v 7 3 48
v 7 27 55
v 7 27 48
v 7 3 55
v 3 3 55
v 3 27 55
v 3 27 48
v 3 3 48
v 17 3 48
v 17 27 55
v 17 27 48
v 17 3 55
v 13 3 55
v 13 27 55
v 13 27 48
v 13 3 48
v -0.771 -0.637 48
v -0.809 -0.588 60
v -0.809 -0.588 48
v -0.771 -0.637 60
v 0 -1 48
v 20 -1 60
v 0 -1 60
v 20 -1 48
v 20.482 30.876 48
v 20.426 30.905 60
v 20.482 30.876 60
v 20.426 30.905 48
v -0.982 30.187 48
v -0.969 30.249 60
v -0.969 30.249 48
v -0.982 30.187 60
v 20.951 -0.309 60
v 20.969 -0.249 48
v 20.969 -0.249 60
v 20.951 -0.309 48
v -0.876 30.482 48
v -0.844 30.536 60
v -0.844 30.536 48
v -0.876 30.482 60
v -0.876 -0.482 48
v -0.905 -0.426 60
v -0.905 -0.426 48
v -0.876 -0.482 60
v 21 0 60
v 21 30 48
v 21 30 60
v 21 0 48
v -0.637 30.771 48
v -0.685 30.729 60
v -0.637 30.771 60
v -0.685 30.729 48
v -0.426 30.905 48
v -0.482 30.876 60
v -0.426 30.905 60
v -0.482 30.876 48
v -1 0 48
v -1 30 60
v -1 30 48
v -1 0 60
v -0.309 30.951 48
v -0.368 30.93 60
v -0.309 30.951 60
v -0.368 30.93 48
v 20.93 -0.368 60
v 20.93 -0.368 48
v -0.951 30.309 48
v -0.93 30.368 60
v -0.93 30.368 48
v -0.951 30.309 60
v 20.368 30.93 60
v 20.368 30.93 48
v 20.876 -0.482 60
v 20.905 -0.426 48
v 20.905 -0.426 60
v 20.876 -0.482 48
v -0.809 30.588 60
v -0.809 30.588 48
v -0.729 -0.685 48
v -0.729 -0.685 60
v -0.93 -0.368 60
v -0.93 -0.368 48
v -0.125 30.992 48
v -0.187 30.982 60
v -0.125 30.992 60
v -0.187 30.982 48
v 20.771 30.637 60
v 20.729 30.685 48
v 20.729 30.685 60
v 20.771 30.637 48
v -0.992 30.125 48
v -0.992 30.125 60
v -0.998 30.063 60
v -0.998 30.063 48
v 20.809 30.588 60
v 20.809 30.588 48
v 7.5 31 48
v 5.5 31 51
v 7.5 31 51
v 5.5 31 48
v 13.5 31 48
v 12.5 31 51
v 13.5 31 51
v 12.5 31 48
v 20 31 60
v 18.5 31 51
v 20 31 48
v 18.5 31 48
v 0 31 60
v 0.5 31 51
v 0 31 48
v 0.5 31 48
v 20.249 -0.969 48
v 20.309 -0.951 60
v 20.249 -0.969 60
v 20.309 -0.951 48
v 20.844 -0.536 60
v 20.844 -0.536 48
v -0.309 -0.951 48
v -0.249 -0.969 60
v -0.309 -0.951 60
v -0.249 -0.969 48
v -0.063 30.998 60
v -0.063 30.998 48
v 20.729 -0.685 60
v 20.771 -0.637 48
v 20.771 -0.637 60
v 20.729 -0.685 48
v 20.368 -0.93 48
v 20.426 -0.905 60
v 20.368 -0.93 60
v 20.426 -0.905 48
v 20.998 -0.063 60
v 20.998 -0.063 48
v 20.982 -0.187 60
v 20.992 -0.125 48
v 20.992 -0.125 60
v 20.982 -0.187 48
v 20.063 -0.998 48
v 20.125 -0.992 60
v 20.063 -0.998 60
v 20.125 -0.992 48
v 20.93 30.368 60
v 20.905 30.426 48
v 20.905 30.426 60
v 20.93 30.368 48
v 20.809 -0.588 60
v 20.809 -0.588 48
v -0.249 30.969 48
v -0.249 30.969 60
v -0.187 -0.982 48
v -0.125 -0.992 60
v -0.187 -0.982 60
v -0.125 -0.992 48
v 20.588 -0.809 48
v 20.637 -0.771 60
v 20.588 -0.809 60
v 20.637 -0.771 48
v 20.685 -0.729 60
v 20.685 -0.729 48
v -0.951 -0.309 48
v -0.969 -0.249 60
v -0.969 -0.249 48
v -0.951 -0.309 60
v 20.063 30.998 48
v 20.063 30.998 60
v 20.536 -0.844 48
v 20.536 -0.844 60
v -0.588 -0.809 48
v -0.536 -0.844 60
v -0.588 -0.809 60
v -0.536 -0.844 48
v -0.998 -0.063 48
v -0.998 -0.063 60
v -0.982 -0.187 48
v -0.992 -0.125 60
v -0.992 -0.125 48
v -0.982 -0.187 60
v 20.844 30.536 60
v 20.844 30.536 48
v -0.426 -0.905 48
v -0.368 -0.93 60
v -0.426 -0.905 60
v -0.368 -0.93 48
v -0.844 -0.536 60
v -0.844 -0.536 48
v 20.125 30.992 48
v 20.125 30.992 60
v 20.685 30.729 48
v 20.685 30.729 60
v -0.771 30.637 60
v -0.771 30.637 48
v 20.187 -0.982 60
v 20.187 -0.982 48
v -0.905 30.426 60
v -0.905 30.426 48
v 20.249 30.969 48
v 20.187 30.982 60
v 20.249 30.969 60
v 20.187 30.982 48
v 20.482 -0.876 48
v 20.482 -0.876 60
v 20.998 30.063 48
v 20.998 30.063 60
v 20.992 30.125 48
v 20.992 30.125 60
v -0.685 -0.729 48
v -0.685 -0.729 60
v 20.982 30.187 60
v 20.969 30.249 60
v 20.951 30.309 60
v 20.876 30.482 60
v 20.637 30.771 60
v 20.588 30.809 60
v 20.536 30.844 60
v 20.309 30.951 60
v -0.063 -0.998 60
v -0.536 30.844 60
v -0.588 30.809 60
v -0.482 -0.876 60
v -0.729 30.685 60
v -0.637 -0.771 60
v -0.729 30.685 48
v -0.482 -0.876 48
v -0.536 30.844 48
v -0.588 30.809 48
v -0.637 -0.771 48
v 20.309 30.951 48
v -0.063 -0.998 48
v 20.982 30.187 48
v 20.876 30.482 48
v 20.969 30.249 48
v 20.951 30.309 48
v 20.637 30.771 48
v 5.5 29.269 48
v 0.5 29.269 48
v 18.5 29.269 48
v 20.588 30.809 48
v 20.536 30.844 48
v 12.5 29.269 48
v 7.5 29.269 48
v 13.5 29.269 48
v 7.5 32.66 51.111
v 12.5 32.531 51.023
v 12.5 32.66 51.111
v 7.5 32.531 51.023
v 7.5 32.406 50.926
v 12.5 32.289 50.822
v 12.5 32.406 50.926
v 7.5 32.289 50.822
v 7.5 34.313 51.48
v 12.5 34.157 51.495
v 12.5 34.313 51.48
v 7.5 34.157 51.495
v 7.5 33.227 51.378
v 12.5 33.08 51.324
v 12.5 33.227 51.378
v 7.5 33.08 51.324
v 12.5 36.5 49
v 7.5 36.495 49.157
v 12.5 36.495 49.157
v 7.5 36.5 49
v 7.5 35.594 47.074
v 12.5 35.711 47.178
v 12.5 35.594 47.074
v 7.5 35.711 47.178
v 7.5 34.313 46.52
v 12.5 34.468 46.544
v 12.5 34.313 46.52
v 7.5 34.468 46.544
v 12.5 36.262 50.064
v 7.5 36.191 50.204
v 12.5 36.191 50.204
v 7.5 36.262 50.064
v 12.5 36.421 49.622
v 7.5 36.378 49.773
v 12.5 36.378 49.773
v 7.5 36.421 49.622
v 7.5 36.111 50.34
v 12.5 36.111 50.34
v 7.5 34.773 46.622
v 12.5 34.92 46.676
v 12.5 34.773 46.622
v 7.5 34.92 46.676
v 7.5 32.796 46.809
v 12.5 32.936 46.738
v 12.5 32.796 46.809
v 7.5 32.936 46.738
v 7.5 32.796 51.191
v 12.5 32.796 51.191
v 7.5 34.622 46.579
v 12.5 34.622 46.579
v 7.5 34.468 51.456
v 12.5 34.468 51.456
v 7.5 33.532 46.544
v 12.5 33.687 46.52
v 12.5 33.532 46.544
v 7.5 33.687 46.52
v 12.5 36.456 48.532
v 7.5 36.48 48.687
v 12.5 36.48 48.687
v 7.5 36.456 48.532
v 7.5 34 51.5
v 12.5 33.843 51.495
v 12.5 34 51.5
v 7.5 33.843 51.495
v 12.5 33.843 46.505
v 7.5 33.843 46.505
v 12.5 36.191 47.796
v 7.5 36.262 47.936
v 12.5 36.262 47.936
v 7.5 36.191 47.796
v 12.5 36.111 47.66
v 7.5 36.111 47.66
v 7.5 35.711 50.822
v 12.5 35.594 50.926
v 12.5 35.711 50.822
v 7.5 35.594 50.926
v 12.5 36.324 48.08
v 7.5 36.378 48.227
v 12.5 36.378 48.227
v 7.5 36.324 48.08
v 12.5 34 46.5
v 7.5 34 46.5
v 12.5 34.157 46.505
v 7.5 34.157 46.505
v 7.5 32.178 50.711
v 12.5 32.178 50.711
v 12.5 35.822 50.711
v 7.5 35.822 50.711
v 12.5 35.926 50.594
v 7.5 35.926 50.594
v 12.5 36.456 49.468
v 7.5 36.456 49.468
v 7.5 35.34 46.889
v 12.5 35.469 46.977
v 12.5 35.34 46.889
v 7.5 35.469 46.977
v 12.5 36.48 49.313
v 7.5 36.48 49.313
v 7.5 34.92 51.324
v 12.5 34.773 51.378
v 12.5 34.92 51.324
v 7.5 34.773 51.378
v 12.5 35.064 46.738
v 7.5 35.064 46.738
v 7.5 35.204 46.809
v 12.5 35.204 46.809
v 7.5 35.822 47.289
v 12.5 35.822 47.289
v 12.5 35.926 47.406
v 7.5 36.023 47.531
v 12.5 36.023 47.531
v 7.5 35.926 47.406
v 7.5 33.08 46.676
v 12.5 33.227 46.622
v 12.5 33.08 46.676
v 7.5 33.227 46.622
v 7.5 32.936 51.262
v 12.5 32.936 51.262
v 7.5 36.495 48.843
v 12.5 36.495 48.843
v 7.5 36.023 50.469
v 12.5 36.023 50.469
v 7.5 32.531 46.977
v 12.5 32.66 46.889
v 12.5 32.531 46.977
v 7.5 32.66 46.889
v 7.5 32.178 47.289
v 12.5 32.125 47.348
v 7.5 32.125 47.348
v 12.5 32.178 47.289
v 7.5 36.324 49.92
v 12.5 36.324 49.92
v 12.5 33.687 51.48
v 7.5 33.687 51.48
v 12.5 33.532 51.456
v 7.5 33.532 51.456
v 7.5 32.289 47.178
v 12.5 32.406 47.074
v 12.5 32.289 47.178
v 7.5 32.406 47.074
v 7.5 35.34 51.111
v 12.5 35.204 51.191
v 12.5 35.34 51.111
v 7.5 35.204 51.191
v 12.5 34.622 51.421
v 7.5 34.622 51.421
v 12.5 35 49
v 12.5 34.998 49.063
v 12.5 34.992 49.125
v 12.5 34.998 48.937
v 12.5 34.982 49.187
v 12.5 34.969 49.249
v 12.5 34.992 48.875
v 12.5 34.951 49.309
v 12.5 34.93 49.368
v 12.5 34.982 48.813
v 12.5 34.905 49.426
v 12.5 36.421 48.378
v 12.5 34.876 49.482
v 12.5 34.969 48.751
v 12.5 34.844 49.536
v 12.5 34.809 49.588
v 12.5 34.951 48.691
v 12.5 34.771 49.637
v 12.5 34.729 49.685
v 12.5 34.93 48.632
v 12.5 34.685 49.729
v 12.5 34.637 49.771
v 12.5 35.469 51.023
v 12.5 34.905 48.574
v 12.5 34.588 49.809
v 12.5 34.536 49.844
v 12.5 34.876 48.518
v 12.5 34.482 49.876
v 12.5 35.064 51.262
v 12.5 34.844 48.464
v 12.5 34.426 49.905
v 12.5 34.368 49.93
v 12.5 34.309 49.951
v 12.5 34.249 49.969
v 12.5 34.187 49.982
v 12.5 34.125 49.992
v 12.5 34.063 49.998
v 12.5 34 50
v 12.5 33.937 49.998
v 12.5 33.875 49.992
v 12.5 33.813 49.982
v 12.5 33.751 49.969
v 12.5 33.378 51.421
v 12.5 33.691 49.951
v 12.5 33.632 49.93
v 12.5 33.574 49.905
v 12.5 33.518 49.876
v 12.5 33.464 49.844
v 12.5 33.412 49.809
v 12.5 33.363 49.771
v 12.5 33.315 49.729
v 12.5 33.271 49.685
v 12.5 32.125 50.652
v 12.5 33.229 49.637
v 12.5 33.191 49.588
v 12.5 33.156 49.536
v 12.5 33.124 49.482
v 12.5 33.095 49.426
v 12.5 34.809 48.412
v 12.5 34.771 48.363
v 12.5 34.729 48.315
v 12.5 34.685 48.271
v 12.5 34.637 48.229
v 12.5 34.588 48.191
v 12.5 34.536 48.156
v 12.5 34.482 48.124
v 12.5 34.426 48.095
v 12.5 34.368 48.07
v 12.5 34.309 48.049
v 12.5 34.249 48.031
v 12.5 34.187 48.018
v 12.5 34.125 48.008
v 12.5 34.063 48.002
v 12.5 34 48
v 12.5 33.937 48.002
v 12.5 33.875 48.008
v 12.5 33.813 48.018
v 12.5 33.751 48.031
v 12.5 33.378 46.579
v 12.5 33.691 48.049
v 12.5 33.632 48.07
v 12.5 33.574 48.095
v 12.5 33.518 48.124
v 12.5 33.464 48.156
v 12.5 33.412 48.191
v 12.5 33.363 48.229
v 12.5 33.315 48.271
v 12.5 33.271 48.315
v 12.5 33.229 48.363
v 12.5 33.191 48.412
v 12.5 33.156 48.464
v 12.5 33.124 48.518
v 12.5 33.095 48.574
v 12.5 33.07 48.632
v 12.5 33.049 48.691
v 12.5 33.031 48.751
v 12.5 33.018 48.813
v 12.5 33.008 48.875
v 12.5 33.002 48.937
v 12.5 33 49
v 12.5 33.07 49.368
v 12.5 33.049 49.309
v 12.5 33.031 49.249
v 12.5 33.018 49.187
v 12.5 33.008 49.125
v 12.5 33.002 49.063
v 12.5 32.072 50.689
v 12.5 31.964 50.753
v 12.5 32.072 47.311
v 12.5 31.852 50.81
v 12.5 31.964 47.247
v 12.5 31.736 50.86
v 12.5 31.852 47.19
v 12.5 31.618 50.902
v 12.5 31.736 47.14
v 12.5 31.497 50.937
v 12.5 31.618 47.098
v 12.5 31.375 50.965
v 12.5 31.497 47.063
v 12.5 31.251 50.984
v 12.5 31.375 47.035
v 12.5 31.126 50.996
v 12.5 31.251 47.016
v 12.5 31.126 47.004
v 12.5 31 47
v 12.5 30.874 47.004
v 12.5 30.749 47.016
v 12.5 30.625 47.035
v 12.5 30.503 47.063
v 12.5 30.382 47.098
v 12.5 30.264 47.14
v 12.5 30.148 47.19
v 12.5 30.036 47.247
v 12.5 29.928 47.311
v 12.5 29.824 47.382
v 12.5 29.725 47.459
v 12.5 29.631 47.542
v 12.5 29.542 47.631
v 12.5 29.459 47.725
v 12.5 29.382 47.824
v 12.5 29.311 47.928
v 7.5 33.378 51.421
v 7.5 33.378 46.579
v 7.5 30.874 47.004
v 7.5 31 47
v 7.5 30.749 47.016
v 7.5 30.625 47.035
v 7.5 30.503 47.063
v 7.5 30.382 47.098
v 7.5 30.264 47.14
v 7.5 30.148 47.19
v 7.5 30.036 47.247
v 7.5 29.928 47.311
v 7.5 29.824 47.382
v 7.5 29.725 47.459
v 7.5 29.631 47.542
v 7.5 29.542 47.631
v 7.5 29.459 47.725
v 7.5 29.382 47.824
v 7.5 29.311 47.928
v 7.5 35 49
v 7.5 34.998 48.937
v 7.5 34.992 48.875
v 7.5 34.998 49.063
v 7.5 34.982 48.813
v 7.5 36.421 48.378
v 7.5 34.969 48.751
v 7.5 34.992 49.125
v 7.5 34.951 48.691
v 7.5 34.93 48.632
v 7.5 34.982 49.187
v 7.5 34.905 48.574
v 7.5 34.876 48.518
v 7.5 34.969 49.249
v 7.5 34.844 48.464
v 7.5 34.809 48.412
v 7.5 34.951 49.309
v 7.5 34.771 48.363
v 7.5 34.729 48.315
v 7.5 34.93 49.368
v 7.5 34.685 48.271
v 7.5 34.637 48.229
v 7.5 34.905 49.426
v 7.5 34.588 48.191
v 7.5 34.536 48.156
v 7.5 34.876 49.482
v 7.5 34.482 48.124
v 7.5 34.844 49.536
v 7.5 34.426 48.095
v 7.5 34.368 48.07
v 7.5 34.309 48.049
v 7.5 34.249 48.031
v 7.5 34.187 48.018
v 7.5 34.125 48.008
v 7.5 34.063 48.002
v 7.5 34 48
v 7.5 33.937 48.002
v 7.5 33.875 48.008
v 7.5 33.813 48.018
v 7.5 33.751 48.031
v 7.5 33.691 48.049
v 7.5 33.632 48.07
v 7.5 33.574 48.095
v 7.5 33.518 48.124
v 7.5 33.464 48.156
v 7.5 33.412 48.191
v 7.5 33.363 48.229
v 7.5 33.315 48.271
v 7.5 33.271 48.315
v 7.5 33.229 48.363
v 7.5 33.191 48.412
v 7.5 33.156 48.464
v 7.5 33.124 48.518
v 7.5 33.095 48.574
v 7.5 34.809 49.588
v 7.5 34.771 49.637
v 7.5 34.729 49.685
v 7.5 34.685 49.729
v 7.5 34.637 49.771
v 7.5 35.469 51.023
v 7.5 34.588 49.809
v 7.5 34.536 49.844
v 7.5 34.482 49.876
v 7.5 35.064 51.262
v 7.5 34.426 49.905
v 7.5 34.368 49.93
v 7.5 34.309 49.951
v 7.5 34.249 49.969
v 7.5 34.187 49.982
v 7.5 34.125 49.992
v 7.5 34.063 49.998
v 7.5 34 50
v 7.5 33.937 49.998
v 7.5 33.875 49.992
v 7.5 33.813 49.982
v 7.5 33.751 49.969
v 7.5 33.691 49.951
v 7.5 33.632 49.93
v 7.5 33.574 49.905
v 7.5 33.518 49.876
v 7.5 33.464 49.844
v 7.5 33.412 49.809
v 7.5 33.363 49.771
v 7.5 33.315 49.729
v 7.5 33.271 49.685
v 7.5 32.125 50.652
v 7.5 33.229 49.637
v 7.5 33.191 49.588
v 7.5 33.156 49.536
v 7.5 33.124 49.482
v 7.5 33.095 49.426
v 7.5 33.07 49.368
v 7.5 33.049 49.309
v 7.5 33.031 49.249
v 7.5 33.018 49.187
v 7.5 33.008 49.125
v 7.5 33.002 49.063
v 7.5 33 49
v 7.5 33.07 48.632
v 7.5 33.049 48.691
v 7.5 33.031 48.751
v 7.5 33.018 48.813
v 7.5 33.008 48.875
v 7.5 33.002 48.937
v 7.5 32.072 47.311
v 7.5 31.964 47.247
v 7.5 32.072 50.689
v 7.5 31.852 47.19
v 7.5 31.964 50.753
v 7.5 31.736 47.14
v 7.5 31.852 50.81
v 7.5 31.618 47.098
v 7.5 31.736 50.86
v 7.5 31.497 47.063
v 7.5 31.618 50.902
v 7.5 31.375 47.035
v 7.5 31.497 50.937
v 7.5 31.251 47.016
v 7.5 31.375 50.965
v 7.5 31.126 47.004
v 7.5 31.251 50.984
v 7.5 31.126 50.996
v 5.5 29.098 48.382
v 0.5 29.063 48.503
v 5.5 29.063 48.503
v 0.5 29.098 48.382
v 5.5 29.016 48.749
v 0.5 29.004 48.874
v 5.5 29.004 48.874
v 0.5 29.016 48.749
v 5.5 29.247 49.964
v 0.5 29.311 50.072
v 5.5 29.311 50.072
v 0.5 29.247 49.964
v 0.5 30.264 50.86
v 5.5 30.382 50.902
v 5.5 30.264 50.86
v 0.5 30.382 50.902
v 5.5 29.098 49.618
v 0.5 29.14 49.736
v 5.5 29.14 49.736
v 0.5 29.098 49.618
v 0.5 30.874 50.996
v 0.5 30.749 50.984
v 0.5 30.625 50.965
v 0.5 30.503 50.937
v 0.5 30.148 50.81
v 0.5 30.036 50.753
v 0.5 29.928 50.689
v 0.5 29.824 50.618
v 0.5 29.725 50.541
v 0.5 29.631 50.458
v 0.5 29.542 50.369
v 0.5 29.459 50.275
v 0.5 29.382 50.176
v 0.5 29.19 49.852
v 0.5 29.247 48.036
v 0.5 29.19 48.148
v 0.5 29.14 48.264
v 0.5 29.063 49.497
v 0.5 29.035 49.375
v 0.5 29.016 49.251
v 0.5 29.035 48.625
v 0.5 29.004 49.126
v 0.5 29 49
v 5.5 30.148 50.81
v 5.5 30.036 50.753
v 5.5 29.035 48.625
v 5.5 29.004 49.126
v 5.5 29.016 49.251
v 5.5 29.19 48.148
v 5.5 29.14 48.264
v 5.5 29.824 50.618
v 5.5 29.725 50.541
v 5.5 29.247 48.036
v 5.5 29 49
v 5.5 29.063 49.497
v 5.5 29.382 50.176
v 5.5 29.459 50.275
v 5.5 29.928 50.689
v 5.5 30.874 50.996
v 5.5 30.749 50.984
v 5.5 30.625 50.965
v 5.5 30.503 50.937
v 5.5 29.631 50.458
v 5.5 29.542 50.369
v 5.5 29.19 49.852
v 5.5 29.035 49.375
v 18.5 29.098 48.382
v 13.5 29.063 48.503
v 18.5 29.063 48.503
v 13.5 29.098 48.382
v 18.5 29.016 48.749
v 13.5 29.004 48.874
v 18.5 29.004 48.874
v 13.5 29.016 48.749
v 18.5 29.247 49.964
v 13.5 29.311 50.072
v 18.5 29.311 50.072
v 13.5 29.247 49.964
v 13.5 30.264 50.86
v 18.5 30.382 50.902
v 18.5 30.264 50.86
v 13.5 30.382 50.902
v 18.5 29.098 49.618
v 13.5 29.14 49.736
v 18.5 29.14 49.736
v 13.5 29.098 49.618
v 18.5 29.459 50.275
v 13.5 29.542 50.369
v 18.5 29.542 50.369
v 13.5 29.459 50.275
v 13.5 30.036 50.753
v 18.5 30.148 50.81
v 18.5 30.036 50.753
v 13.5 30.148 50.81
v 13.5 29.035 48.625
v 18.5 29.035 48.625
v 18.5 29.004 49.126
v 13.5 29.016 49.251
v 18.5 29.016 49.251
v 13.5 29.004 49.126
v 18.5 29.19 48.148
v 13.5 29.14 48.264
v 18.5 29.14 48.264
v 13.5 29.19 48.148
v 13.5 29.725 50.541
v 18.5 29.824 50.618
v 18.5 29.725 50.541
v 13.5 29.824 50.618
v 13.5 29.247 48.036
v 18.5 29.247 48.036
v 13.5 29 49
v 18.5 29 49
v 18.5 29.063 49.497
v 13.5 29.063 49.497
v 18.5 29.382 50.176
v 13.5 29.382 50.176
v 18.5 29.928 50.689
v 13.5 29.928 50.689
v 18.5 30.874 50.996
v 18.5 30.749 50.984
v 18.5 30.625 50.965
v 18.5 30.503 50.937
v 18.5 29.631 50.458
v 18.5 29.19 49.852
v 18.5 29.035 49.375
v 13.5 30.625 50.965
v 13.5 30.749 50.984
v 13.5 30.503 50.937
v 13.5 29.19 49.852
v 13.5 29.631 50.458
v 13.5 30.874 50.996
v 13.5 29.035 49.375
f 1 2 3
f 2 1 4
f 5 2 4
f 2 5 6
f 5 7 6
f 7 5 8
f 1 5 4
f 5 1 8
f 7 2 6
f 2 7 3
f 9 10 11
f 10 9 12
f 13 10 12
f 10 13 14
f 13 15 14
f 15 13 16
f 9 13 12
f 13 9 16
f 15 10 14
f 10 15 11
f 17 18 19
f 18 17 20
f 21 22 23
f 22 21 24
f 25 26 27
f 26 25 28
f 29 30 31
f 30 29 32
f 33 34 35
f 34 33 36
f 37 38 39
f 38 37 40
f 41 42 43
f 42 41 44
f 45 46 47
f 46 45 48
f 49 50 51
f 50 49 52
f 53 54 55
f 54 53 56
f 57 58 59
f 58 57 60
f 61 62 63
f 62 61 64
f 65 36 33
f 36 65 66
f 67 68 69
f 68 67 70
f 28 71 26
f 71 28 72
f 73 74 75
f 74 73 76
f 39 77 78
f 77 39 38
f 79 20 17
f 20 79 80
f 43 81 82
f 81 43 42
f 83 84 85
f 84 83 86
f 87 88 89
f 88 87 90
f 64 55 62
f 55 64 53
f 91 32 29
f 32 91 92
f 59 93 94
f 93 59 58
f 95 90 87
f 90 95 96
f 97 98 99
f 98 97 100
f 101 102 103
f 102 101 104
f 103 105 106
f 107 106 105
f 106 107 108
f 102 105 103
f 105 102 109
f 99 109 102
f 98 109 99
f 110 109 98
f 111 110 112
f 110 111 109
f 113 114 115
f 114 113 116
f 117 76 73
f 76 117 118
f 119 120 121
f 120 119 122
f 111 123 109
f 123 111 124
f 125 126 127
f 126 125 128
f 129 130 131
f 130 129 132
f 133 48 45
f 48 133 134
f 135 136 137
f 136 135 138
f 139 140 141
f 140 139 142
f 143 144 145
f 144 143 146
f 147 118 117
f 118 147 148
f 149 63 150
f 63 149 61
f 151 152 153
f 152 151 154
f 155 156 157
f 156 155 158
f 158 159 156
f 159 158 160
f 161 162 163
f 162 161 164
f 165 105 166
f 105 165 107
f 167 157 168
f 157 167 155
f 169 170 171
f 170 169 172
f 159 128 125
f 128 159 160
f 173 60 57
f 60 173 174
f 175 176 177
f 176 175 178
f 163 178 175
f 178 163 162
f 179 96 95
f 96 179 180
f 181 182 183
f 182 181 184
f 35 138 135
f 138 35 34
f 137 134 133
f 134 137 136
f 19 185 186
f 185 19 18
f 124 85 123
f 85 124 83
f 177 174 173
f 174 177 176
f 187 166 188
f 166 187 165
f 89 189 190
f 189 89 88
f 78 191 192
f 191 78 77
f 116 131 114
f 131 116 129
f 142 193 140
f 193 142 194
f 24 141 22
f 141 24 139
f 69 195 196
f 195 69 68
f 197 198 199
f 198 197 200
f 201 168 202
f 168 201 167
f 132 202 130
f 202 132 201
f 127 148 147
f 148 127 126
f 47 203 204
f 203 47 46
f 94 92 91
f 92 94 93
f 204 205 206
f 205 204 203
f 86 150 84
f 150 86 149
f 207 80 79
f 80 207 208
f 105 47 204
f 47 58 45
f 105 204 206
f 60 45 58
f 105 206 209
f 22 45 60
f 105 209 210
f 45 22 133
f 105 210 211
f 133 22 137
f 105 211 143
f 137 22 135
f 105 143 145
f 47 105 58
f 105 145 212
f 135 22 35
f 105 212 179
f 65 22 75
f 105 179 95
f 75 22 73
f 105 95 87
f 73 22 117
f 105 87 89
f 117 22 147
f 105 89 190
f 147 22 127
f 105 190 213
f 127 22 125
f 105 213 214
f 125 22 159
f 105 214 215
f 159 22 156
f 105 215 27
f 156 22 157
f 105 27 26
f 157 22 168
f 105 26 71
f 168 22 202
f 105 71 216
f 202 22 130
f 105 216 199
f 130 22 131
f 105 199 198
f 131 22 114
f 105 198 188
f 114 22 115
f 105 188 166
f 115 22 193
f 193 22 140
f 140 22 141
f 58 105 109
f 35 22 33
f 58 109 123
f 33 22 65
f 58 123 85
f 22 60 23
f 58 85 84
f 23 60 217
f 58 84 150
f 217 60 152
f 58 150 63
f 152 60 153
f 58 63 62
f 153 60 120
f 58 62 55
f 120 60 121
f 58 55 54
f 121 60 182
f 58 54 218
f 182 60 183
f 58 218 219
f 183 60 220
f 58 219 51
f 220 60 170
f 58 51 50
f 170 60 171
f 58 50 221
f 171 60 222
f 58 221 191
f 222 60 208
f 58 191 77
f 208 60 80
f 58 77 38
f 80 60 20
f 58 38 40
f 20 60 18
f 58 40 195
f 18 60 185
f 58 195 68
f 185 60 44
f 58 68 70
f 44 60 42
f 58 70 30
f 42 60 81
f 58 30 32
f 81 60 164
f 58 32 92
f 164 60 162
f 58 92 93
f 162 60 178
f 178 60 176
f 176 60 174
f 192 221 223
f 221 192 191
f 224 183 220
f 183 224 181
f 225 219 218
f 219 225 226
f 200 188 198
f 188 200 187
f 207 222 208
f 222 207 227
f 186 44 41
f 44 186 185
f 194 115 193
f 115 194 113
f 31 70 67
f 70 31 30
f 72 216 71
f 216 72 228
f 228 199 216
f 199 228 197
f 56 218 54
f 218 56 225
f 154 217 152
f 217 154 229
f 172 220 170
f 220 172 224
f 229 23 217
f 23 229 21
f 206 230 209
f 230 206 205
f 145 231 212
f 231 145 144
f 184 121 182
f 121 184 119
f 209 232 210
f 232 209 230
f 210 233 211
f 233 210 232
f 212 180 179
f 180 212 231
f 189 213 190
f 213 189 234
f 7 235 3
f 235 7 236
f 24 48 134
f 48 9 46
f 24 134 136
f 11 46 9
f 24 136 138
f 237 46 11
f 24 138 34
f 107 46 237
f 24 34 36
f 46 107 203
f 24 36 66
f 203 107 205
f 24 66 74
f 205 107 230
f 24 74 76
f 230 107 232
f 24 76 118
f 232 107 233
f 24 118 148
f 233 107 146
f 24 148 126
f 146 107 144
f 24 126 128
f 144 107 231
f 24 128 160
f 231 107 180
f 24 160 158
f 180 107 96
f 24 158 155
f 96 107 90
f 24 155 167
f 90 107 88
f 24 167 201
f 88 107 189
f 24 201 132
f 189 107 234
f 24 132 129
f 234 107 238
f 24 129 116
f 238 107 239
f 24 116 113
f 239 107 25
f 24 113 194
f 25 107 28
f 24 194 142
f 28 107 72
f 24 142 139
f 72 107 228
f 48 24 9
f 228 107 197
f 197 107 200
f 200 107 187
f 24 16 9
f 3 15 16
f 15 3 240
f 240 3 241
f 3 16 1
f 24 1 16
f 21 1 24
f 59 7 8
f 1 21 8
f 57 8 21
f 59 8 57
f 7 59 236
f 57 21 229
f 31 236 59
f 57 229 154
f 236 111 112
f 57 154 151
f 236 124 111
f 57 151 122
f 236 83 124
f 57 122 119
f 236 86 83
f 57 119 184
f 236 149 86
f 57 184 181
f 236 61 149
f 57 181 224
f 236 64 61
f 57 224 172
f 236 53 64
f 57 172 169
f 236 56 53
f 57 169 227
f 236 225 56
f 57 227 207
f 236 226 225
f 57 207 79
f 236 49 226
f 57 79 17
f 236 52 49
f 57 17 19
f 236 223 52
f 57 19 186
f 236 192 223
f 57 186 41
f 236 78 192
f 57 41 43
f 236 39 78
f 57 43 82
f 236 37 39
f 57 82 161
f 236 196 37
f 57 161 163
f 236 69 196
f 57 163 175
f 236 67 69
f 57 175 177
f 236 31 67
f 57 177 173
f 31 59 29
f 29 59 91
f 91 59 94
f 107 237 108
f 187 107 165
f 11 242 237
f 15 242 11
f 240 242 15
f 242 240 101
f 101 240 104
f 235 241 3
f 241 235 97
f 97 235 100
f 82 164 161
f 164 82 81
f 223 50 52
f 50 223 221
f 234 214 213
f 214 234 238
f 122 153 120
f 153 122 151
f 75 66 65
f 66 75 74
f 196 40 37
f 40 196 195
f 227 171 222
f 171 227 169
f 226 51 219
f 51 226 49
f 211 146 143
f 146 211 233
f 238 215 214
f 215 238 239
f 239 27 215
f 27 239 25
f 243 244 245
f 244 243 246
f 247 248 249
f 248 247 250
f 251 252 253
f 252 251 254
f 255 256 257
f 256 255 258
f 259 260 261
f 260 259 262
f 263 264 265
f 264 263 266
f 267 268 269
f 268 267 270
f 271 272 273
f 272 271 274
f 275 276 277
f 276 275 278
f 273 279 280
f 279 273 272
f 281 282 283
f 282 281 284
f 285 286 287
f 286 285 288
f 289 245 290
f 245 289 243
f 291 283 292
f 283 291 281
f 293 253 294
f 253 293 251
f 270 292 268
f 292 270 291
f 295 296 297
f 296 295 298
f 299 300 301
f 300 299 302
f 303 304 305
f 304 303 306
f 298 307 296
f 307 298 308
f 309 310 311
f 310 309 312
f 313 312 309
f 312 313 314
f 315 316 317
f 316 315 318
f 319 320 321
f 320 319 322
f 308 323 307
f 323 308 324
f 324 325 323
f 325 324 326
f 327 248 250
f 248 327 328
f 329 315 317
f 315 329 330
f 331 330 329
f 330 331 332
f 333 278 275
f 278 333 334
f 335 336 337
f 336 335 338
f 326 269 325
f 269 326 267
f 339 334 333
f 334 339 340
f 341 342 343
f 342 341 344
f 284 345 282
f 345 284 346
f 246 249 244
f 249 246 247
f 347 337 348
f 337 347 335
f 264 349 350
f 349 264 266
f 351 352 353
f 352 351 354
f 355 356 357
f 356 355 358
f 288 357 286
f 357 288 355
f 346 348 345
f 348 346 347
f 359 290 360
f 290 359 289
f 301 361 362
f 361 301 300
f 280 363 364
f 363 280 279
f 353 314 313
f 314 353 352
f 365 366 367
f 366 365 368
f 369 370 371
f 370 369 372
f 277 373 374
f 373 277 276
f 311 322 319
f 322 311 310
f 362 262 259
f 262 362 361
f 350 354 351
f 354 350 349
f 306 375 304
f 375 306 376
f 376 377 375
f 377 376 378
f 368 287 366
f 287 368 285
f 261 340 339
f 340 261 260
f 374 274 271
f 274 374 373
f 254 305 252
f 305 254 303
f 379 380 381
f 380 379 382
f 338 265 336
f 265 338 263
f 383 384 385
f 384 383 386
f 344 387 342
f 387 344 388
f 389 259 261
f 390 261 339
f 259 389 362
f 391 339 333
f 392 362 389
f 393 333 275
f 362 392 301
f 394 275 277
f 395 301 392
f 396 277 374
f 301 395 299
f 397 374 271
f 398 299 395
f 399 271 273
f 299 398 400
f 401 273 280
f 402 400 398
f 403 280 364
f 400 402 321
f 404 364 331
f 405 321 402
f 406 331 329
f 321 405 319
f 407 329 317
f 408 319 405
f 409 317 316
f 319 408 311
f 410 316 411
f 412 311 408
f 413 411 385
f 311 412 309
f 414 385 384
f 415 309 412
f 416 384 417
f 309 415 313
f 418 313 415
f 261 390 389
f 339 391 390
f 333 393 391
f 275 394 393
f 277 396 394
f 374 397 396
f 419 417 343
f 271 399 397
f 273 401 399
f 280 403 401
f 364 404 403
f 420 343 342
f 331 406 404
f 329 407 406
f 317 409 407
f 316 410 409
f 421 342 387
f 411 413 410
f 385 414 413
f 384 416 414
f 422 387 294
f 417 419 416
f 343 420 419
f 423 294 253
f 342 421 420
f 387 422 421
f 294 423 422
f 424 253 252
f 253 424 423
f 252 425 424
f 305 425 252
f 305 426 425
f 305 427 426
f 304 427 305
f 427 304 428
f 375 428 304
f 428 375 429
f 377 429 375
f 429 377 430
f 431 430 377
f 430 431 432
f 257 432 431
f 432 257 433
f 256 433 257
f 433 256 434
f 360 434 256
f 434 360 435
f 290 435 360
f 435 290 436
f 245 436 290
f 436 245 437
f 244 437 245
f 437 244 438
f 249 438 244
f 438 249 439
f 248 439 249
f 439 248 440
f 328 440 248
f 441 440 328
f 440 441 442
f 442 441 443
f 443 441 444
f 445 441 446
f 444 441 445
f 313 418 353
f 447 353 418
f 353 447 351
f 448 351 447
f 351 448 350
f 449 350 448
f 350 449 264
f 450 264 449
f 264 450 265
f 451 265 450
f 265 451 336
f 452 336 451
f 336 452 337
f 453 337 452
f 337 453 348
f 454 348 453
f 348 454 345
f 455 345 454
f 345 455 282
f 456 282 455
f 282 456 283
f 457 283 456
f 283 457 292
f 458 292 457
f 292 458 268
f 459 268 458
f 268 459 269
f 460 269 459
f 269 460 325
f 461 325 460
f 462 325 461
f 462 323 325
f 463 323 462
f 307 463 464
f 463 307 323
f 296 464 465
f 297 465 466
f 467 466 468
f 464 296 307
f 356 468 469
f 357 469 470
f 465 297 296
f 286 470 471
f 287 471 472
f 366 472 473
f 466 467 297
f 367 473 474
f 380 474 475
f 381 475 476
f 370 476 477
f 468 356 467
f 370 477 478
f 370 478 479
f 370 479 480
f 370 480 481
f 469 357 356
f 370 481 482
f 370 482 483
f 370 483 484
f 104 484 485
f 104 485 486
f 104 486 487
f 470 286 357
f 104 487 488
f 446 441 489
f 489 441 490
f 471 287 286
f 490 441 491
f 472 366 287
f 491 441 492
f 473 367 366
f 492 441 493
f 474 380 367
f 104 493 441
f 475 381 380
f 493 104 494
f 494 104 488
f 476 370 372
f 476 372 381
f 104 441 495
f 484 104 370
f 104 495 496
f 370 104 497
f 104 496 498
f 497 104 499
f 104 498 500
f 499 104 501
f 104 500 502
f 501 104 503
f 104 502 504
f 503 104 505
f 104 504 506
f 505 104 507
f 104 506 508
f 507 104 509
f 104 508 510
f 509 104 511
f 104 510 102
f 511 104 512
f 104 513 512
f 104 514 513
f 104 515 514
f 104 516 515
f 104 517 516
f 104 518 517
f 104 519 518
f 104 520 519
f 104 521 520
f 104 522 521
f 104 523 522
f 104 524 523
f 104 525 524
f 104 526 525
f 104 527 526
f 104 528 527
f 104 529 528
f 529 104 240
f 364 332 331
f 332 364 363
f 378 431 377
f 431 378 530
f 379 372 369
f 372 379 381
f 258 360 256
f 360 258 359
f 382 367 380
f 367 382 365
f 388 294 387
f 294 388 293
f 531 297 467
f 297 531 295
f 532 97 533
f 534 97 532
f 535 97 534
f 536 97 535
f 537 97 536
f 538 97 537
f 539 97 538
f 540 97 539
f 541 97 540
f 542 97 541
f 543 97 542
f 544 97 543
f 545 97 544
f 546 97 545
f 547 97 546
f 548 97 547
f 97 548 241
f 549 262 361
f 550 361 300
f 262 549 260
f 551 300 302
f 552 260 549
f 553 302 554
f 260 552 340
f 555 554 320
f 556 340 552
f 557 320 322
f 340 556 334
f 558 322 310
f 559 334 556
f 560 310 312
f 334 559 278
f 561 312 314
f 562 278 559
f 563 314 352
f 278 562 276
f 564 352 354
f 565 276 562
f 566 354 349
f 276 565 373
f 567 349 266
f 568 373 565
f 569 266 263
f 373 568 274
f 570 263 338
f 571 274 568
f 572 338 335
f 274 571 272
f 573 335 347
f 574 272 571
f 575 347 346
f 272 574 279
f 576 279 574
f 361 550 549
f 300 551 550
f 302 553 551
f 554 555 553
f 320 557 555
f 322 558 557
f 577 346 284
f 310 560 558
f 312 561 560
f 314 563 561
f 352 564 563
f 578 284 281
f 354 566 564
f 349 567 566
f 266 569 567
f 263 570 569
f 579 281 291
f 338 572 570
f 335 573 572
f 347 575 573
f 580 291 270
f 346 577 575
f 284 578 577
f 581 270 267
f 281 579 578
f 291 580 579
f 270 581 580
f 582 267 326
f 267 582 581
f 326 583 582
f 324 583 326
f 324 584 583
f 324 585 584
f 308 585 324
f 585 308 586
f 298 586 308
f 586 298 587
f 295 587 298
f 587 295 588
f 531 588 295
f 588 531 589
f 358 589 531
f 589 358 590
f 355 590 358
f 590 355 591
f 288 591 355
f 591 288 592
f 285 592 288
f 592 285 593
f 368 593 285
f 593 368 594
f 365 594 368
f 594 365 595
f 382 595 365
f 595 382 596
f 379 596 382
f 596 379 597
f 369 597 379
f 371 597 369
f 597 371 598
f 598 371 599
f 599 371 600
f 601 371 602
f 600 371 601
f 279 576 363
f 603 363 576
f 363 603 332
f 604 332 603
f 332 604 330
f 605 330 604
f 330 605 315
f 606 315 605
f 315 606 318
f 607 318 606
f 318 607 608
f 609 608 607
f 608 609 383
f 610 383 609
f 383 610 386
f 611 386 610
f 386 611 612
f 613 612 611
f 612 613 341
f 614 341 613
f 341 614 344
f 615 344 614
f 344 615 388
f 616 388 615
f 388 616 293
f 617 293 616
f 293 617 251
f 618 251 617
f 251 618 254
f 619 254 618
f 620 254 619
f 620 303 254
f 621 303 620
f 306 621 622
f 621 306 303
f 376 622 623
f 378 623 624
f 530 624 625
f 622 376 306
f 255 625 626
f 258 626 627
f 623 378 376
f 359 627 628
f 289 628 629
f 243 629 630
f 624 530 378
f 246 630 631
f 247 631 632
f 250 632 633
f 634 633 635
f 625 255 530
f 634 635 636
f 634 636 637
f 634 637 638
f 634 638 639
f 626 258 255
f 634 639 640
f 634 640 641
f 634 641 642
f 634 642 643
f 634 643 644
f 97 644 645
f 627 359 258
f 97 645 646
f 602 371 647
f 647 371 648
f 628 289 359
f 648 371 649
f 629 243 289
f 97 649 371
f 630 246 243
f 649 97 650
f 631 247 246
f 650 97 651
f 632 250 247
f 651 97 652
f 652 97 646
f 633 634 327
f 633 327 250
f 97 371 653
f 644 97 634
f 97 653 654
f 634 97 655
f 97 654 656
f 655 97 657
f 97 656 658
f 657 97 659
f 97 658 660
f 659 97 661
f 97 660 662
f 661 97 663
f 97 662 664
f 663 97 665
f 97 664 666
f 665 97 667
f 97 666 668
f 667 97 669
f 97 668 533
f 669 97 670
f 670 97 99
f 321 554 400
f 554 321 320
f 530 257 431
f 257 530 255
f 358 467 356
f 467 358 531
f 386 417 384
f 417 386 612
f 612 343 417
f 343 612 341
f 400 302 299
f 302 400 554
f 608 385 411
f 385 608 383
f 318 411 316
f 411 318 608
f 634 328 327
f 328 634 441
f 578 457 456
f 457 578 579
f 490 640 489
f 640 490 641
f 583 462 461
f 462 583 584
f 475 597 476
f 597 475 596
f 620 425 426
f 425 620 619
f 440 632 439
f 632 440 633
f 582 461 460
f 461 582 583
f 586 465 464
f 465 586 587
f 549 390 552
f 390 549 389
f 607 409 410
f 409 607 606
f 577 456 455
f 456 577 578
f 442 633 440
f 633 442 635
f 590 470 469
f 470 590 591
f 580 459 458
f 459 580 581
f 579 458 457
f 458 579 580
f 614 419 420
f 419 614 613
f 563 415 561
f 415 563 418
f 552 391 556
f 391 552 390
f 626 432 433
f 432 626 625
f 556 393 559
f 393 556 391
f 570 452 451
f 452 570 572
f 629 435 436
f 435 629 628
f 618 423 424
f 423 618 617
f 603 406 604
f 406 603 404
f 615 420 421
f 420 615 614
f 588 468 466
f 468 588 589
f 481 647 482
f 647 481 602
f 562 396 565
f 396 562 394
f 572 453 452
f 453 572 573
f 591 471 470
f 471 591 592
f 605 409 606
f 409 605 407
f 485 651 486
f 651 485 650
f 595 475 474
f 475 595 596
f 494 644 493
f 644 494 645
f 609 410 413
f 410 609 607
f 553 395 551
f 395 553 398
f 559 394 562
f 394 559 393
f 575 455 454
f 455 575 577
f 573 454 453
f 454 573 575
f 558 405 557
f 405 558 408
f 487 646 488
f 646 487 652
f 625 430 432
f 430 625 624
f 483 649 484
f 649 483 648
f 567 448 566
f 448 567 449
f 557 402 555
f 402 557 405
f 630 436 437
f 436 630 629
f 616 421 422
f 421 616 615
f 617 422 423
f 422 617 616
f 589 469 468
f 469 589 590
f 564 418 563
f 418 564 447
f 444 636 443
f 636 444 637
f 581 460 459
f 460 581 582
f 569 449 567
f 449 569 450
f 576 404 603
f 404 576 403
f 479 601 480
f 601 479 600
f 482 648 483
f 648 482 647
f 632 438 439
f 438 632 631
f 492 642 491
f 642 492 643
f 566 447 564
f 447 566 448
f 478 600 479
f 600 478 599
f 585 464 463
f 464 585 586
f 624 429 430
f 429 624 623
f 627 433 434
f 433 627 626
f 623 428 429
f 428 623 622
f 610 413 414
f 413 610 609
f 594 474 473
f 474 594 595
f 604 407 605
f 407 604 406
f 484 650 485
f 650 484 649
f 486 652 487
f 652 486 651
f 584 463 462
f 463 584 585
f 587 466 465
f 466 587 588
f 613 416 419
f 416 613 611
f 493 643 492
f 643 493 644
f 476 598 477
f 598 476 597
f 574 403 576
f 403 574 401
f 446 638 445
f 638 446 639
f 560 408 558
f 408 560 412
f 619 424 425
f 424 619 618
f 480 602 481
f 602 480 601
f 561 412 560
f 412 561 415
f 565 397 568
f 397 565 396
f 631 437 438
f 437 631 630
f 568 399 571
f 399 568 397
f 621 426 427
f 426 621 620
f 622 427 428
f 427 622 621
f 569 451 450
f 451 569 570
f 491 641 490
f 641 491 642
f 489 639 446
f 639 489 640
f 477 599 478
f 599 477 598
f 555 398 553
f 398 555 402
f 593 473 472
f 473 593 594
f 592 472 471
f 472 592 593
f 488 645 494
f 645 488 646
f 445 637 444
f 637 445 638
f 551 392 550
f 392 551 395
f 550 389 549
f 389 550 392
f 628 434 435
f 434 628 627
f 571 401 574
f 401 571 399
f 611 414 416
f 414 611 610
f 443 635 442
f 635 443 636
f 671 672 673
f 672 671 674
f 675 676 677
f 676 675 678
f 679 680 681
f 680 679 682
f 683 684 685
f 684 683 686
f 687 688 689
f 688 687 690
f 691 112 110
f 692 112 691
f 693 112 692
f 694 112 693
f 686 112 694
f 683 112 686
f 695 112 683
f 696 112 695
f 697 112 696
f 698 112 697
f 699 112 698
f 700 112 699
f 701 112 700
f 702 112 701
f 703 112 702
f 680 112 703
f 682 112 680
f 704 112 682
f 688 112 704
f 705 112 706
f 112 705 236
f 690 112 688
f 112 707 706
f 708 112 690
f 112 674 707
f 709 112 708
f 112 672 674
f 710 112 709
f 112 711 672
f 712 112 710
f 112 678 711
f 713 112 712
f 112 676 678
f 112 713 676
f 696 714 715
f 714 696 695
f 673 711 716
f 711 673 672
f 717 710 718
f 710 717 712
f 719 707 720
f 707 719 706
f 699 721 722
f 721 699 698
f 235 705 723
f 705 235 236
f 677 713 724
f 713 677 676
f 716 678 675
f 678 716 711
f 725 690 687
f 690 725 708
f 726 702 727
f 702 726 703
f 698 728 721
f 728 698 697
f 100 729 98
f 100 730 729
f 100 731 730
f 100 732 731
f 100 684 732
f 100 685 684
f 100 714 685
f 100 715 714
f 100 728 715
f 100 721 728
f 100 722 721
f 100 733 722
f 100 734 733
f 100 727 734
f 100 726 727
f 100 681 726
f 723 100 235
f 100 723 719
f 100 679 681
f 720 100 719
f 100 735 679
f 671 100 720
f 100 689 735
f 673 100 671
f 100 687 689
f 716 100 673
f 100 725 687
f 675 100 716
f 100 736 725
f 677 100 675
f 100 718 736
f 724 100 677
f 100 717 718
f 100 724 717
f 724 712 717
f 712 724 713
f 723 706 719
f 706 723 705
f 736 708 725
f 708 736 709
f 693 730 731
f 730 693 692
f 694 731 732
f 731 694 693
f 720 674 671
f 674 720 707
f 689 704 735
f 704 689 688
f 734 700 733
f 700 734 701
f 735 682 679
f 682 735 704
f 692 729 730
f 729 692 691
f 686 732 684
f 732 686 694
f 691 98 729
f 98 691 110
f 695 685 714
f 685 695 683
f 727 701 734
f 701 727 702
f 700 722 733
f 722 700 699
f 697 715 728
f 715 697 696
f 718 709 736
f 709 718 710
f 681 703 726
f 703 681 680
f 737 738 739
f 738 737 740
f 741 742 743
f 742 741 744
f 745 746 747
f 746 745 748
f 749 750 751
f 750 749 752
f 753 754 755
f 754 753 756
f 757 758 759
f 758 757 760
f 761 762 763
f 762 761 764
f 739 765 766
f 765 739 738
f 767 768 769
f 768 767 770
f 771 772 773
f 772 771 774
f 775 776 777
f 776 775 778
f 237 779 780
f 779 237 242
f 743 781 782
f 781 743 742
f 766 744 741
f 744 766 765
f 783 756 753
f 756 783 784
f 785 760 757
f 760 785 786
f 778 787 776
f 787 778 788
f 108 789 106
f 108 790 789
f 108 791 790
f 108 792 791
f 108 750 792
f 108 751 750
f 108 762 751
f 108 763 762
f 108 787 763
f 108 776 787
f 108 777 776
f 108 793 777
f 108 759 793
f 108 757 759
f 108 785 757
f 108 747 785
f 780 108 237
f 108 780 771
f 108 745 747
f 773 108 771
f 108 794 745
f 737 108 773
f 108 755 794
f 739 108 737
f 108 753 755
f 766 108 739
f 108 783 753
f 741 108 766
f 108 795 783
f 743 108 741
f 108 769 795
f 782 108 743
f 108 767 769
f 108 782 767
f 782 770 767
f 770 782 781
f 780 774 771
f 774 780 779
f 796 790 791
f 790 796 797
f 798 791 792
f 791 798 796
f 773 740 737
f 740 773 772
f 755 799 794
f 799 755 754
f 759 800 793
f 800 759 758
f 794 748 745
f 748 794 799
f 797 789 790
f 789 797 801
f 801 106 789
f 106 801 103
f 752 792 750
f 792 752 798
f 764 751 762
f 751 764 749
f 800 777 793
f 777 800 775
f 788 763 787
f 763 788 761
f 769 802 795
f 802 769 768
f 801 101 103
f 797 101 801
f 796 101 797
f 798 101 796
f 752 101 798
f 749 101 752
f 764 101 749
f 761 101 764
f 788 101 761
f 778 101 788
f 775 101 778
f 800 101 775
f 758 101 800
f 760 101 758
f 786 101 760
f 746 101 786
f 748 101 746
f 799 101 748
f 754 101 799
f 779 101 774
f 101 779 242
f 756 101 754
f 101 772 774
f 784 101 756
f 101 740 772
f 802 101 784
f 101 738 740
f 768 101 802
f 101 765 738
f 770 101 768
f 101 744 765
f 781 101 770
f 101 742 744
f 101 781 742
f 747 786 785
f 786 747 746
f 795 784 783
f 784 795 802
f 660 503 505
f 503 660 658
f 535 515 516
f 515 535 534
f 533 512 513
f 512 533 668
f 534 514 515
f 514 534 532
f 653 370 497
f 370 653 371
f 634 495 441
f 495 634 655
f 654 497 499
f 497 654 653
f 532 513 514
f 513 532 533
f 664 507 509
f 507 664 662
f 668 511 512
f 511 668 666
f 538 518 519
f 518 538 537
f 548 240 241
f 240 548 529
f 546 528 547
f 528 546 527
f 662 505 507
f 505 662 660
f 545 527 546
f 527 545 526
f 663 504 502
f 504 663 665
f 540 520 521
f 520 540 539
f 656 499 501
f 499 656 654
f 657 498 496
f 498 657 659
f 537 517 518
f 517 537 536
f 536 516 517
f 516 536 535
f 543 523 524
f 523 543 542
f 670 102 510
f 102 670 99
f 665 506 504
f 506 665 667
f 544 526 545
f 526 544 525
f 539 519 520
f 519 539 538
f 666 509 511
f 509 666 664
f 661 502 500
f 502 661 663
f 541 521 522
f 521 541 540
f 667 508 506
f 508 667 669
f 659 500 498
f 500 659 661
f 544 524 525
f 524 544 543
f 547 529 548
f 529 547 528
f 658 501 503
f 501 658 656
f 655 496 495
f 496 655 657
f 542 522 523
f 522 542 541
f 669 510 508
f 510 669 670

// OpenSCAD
// Dimension of Nintindo Switch Game Card: 20mm x 30mm x 3mm
// Author: Xiaoqi Zhao
// Date: 2022-12-03

$fn=100;

//// base box
//difference() {
//    difference() {
//        minkowski() {
//            cube([20,30,22]);
//            cylinder(3);
//        }
//        
//        for (i = [0:1:1]) {
//            #translate([3+i*10, 3, 5]) cube([4,24,30]);
//        }
//    };
//
//    translate([7.5,31,25])
//    rotate([0,90,0])
//    color("cyan")
//        #cylinder(5,2,2);
//}
//
//// hinge in base
//translate([0.5,31,25])
//rotate([0,90,0])
//    cylinder(5,2,2);
//translate([0.5,34,26])
//rotate([0,90,0])
//difference() {
//    cylinder(6,2.5,2.5);
//    cylinder(6,1,1);
//}
//
//translate([13.5,31,25])
//rotate([0,90,0])
//    cylinder(5,2,2);
//translate([13.5,34,26])
//rotate([0,90,0])
//difference() {
//    cylinder(6,2.5,2.5);
//    cylinder(6,1,1);
//}

// cover box
difference() {
    translate([0,30,60])
    rotate([180,0,0])
    color("cyan")
    difference() {
        minkowski() {
            cube([20,30,9]);
            cylinder(3);
        }
        
        for (i = [0:1:1]) {
            #translate([3+i*10, 3, 5]) cube([4,24,15]);
        }
    }
    
    // trim the hinge overlapping part
    translate([0.5,31,49])
    rotate([0,90,0])
        #cylinder(5,2,2);

    translate([13.5,31,49])
    rotate([0,90,0])
        #cylinder(5,2,2);

}

// hinge in cover
translate([7.5,31,49])
rotate([0,90,0])
color("cyan")
    cylinder(5,2,2);
translate([7.5,34,49])
rotate([0,90,0])
color("cyan")
difference() {
    cylinder(5,2.5,2.5);
    cylinder(5,1,1);
}

//// logo text
//translate([2,1,22])
//rotate([90,60,0])
//color("red")
//scale(0.4)
//linear_extrude(8)
//text("Nintendo");
